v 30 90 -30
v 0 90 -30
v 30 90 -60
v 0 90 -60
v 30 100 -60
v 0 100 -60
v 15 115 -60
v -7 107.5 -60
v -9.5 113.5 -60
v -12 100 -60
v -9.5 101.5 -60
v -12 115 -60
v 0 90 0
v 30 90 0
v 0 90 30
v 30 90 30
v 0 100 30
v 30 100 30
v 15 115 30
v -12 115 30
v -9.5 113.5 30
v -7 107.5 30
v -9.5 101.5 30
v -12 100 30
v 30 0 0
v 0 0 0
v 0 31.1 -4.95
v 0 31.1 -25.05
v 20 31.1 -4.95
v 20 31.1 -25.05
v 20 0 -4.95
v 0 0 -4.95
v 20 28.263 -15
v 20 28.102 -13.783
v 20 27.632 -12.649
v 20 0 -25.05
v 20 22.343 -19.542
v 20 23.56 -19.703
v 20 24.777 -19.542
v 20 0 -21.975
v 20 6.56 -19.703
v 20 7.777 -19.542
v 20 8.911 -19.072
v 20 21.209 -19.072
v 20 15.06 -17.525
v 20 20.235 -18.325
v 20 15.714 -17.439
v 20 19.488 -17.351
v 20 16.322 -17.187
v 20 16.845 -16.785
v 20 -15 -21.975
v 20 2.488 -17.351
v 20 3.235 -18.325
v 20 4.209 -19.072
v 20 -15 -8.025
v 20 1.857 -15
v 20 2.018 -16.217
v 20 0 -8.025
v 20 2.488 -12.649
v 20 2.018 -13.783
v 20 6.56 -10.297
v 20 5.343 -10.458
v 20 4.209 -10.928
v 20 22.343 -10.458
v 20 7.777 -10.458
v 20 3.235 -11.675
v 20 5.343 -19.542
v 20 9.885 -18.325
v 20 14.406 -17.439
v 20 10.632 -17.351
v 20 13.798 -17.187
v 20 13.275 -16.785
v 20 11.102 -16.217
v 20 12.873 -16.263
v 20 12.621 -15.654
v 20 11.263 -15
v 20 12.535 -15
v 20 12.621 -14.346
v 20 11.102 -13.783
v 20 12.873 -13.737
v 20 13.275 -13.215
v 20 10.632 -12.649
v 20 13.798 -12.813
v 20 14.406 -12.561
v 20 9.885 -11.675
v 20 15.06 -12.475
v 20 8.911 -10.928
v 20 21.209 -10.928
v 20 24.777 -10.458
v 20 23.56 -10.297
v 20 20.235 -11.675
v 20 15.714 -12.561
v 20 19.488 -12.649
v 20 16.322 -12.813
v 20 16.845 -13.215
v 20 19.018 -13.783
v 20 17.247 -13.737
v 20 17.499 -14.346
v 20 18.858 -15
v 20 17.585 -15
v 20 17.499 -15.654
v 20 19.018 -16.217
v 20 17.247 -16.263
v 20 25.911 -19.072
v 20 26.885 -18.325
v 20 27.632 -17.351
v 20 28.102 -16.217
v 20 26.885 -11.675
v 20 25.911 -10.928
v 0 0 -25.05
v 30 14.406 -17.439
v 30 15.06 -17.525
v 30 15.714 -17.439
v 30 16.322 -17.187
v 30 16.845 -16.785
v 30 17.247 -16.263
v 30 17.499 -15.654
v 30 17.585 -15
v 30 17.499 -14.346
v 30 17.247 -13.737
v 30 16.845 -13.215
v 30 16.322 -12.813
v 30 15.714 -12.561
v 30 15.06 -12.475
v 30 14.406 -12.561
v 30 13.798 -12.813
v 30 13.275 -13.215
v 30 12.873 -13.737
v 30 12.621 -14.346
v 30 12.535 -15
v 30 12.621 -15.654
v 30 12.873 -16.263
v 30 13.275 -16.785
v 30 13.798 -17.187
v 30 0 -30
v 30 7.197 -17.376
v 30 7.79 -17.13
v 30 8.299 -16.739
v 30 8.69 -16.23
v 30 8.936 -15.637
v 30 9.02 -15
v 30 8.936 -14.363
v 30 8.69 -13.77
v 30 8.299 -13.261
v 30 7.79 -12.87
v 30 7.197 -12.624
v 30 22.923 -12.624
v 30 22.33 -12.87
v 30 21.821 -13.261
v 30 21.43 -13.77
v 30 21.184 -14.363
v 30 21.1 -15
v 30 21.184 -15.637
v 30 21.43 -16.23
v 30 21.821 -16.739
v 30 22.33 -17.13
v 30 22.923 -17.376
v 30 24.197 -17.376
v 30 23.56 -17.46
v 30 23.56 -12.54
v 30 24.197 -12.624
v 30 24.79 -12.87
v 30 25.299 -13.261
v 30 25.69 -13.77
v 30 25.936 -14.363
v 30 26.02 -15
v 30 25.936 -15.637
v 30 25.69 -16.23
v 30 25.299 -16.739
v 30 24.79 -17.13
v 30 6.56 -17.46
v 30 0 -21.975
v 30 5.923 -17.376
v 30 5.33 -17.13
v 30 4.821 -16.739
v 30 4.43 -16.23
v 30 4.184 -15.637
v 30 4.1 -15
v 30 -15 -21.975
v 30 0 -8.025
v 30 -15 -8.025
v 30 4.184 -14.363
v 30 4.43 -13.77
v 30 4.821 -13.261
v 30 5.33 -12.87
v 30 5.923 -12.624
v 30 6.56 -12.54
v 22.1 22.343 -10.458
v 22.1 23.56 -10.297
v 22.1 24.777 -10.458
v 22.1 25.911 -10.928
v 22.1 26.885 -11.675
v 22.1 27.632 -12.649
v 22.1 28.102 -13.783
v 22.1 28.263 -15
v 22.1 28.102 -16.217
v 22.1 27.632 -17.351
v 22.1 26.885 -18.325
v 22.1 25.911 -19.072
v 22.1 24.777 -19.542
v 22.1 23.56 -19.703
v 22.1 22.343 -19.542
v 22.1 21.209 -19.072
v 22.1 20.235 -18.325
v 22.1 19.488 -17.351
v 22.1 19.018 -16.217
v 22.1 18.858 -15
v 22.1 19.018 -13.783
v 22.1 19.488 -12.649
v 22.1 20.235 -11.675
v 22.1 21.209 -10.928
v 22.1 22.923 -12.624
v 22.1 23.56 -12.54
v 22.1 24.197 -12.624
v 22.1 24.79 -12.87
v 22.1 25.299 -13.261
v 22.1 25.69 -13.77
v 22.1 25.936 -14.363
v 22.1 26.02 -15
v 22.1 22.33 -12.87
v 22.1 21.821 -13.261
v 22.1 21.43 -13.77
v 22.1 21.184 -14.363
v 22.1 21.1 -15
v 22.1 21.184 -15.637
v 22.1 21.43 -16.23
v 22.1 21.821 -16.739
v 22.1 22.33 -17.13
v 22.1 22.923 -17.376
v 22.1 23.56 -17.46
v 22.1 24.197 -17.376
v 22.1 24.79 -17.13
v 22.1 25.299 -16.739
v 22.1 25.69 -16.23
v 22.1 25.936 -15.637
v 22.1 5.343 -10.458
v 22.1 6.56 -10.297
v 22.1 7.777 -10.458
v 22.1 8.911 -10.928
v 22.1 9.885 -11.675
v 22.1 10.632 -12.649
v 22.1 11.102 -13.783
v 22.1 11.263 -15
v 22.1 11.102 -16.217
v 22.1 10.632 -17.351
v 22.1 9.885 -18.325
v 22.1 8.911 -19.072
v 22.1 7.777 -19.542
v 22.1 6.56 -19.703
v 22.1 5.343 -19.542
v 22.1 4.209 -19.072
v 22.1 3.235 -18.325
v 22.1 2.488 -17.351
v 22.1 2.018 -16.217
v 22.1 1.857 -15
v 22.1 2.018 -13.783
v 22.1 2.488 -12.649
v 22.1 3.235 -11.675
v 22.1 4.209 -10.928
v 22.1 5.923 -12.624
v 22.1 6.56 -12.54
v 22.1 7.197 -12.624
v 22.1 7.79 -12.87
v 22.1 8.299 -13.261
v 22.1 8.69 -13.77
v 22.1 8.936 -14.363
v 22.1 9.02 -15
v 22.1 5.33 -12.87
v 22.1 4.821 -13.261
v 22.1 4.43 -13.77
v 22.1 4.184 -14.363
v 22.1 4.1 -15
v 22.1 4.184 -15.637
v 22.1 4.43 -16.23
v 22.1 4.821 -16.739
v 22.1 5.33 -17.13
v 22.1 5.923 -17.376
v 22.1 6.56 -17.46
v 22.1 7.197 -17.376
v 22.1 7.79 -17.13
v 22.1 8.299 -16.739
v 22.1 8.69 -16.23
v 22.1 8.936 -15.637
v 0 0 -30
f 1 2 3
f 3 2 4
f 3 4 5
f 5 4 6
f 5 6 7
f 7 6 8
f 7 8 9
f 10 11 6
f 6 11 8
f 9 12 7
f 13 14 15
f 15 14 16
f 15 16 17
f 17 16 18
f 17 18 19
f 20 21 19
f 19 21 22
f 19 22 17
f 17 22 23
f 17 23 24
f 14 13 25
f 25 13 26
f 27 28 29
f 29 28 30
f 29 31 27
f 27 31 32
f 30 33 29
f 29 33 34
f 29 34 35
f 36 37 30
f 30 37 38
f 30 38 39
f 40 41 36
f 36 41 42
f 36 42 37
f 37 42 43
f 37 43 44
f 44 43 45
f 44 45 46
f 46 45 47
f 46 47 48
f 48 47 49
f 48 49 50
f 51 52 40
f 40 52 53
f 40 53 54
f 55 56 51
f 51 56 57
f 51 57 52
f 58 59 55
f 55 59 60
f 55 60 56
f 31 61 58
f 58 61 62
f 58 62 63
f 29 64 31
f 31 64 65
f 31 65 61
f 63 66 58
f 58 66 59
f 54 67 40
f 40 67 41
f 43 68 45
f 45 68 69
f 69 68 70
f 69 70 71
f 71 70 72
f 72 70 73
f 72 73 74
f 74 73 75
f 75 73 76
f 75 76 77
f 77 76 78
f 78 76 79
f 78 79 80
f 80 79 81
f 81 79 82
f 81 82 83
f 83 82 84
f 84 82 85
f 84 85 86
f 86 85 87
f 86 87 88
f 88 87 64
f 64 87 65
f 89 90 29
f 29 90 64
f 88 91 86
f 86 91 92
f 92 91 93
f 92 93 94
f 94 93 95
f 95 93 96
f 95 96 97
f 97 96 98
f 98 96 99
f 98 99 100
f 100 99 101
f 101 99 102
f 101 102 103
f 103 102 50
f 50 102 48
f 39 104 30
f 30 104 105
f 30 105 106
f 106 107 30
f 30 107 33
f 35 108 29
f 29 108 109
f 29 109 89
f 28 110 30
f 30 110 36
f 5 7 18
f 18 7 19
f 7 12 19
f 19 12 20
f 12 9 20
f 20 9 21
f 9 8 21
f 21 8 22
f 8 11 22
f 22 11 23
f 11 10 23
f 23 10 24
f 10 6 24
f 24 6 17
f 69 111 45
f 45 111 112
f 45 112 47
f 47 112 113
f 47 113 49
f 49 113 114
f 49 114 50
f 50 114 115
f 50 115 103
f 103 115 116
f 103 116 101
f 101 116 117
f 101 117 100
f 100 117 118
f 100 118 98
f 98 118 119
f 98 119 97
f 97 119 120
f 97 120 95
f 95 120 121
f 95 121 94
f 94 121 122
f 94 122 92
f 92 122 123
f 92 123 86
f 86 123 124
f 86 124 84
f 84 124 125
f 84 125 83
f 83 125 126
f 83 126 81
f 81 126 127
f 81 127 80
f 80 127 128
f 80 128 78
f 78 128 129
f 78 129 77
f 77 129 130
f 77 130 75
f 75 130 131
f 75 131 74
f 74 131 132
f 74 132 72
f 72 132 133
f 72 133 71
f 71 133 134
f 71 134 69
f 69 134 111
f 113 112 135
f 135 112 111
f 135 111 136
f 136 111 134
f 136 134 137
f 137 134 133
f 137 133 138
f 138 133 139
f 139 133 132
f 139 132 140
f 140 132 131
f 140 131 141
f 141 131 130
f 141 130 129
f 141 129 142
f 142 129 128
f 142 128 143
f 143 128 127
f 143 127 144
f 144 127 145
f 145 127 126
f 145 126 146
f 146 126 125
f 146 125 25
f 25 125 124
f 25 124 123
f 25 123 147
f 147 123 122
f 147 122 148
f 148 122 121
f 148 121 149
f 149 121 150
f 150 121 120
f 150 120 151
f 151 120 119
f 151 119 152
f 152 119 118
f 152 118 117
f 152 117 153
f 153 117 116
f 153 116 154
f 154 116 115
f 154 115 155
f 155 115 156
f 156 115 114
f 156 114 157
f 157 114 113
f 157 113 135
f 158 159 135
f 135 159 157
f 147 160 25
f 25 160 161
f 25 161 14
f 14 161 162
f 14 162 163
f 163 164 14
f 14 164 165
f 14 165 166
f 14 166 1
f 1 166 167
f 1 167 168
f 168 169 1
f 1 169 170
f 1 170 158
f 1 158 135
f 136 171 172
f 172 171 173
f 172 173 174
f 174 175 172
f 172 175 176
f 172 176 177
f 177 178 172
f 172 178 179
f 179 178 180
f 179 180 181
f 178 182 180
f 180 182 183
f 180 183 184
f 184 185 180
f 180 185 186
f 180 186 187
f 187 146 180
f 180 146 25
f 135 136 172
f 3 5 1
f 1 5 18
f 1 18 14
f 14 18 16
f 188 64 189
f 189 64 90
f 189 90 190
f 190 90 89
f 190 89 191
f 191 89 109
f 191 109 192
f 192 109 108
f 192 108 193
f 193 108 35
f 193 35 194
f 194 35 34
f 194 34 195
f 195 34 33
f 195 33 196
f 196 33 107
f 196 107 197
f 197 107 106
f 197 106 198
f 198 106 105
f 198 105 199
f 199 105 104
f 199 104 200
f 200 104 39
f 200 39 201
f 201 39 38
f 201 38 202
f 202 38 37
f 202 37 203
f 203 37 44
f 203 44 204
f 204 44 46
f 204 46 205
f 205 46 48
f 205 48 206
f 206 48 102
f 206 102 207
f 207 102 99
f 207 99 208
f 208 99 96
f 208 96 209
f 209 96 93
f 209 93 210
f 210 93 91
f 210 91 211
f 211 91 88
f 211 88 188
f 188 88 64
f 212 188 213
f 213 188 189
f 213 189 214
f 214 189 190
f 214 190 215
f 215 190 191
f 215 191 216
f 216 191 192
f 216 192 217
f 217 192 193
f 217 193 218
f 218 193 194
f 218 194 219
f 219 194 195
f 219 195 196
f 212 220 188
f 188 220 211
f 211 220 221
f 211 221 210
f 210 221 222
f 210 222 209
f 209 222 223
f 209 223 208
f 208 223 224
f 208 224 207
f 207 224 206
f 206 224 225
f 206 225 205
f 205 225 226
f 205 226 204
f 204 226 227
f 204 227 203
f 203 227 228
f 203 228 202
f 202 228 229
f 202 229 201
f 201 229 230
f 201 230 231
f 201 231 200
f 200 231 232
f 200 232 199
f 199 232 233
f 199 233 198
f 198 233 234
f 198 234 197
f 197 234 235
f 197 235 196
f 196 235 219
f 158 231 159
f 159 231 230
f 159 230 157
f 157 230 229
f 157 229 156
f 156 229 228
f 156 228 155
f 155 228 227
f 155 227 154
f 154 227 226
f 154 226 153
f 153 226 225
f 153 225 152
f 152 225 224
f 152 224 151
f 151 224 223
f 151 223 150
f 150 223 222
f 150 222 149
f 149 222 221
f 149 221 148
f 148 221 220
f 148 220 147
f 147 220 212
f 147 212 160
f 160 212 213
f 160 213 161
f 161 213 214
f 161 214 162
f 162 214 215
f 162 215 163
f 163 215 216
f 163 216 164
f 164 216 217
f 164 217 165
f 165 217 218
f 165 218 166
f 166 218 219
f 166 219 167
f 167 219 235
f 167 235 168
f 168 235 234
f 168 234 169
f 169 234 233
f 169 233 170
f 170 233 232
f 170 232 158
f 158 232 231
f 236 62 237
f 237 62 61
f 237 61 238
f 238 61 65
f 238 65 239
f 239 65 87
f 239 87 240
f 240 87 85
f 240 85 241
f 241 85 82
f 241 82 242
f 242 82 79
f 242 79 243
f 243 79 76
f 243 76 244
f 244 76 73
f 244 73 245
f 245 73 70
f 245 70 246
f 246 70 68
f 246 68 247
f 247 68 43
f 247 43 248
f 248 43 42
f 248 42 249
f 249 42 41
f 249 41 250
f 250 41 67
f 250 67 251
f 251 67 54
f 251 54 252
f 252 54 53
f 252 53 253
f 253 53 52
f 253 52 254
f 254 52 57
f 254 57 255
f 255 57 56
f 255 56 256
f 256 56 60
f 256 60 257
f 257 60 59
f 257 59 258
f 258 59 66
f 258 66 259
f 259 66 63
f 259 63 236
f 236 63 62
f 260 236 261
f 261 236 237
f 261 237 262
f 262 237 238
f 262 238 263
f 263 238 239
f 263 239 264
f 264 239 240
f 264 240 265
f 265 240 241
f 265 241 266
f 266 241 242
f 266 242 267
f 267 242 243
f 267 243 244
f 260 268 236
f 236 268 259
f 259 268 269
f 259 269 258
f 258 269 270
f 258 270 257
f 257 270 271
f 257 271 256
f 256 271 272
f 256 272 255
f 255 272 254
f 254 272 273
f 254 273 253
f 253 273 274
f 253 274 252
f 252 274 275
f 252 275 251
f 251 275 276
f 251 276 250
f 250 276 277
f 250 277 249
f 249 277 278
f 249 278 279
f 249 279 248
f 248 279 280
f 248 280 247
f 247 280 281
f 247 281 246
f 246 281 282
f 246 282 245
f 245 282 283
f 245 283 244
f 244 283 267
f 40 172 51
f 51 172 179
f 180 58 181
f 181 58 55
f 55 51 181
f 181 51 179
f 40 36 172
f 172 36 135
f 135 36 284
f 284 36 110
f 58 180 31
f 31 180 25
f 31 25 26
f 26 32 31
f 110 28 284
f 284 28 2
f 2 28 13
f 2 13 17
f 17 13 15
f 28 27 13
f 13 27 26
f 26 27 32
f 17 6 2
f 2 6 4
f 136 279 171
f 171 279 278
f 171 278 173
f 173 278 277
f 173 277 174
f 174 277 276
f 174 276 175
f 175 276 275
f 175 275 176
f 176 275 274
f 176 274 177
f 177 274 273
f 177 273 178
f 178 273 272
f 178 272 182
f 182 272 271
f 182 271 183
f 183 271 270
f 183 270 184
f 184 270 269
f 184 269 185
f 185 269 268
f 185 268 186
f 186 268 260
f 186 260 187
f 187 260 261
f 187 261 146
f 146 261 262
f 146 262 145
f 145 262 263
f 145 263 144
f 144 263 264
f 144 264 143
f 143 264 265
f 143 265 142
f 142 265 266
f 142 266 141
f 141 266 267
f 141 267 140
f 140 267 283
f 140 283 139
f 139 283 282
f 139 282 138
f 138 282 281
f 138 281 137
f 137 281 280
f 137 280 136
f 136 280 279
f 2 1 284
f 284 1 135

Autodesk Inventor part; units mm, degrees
ref_plane "YZ Plane" through (0, 0, 0) normal (1, 0, 0) x (0, 1, 0)
ref_plane "XZ Plane" through (0, 0, 0) normal (0, 1, 0) x (-1, 0, 0)
sketch "Sketch1" plane through (0, 0, 0) normal (0, 0, 1) x (1, 0, 0)
  line L0 (0, 0) -> (25, 0)
  line L1 (25, 0) -> (25, 40)
  line L2 (25, 40) -> (0, 40)
  line L3 (0, 40) -> (0, 0)
  dimension "d1" = 25
  dimension "d2" = 40
  dimension "d3" = 25
extrude "Extrusion1" add sketch "Sketch1" against normal blind 30
sketch "Sketch2" plane through (25, 0, 0) normal (1, 0, 0) x (0, 0, -1)
  line L0 (0, 0) -> (30, 0) projected
  circle A0 centre (15, 6.56) radius 2.46
extrude "Extrusion2" cut sketch "Sketch2" against normal blind 30
sketch "Sketch3" plane through (0, 0, 0) normal (-1, 0, 0) x (0, 0, 1)
  line L0 (0, 0) -> (-30, 0) projected
  line L1 (-25.05, 0) -> (-4.95, 0)
  line L2 (-4.95, 0) -> (-4.95, 33.12)
  line L3 (-4.95, 33.12) -> (-25.05, 33.12)
  line L4 (-25.05, 33.12) -> (-25.05, 0)
  dimension "d11" = 20.1
extrude "Extrusion3" cut sketch "Sketch3" against normal blind 20
sketch "Sketch4" plane through (0, 0, 0) normal (0, -1, 0) x (1, 0, 0)
  line L0 (20, -4.95) -> (20, -25.05) projected
  line L1 (20, -15) -> (25, -15)
  line L2 (25, 0) -> (25, -30) projected
  line L3 (20, -8.025) -> (25, -8.025)
  line L4 (25, -8.025) -> (25, -21.975)
  line L5 (25, -21.975) -> (20, -21.975)
  line L6 (20, -21.975) -> (20, -8.025)
  line L7 (20, -8.025) -> (25, -21.975) construction
  line L8 (25, -8.025) -> (20, -21.975) construction
  line L9 (25, -12.54) -> (25, -17.46) projected
  point P0 (0, 0)
  point P1 (22.5, -15)
  dimension "d14" = 13.95
extrude "Extrusion4" add sketch "Sketch4" along normal blind 15
sketch "Sketch5" plane through (20, 0, 0) normal (-1, 0, 0) x (0, 0, 1)
  circle A0 centre (-15, 6.56) radius 2.46 projected
  circle A1 centre (-15, 6.56) radius 4.7025
  circle A2 centre (-15, 6.56) radius 2.46 projected
  circle A3 centre (-15, 6.56) radius 2.46
  point P0 (0, 0)
  dimension "d17" = 9.405
extrude "Extrusion5" cut sketch "Sketch5" against normal blind 2.1
sketch "Sketch6" plane through (25, 0, 0) normal (1, 0, 0) x (0, 0, -1)
  circle A0 centre (15, 6.56) radius 4.7025 projected
  line L0 (15, 6.56) -> (15, 23.56)
  circle A1 centre (15, 23.56) radius 2.46
  point P0 (0, 0)
  dimension "d20" = 17
  dimension "d21" = 4.92
extrude "Extrusion6" cut sketch "Sketch6" against normal blind 10 contours A1
sketch "Sketch7" plane through (20, 0, 0) normal (-1, 0, 0) x (0, 0, 1)
  circle A0 centre (-15, 23.56) radius 2.46 projected
  circle A1 centre (-15, 23.56) radius 4.7025
  point P0 (0, 0)
  dimension "d24" = 9.405
extrude "Extrusion7" cut sketch "Sketch7" against normal blind 2.1
sketch "Sketch9" plane through (25, 0, 0) normal (1, 0, 0) x (0, 0, -1)
  circle A0 centre (15, 6.56) radius 2.46 projected
  circle A1 centre (15, 6.56) radius 2.46
  circle A2 centre (15, 23.56) radius 2.46 projected
  circle A3 centre (15, 23.56) radius 2.46
  line L0 (30, 40) -> (30, 0) projected
  line L1 (30, 0) -> (30, 40)
  line L2 (30, 40) -> (0, 40)
  line L3 (0, 40) -> (0, 0)
  line L4 (0, 0) -> (8.025, 0) projected
  line L5 (21.975, 0) -> (21.975, -15)
  line L6 (21.975, -15) -> (8.025, -15)
  line L7 (8.025, -15) -> (8.025, 0)
  line L8 (0, 0) -> (8.025, 0)
  line L9 (21.975, 0) -> (30, 0)
extrude "Extrusion8" add sketch "Sketch9" along normal blind 5
sketch "Sketch10" plane through (0, 40, 0) normal (0, 1, 0) x (1, 0, 0)
  line L0 (0, 30) -> (30, 30) projected
  line L1 (30, 0) -> (0, 0) projected
  line L2 (0, 30) -> (30, 30)
  line L3 (30, 30) -> (30, 0)
  line L4 (30, 0) -> (0, 0)
  line L5 (0, 0) -> (0, 30)
extrude "Extrusion9" add sketch "Sketch10" along normal blind 30
sketch "Sketch12" plane through (30, 0, 0) normal (1, 0, 0) x (0, 0, -1)
  circle A0 centre (15, 6.56) radius 2.46 projected
  line L0 (15, 6.56) -> (15, 15.06)
  circle A1 centre (15, 15.06) radius 2.525
  point P0 (0, 0)
  dimension "d31" = 8.5
  dimension "d33" = 5.05
extrude "Extrusion10" cut sketch "Sketch12" against normal blind 30 contours A1
sketch "Sketch14" plane through (0, 0, 0) normal (0, 0, 1) x (1, 0, 0)
  line L0 (30, 70) -> (0, 70) projected
  line L1 (0, 70) -> (0, 85)
  line L2 (30, 100) -> (15, 115)
  line L3 (-12, 115) -> (15, 115)
  line L4 (30, 0) -> (30, 70) projected
  line L5 (30, 100) -> (30, 70)
  line L6 (-9.5, 113.5) -> (-12, 115)
  line L7 (-9.5, 101.5) -> (-12, 100)
  line L8 (-7, 107.5) -> (-9.5, 101.5)
  line L9 (-7, 107.5) -> (-9.5, 113.5)
  line L10 (0, 100) -> (0, 85)
  line L11 (0, 100) -> (-12, 100)
  point P0 (0, 0)
  dimension "d49" = 15
  dimension "d61" = 12
extrude "Extrusion12" add sketch "Sketch14" against normal blind 30
sketch "Sketch15" plane through (0, 0, -25.05) normal (-1, 0, 0) x (0, 0, 1)
  line L0 (0, 33.12) -> (20.1, 33.12) projected
  line L1 (20.1, 33.12) -> (20.1, 0) projected
  line L2 (0, 33.12) -> (20.1, 33.12)
  line L3 (20.1, 33.12) -> (20.1, 31.1)
  line L4 (20.1, 31.1) -> (0, 31.1)
  line L5 (0, 31.1) -> (0, 33.12)
  point P0 (25.05, 0)
  dimension "d57" = 2.02
extrude "Extrusion13" add sketch "Sketch15" against normal blind 20
sketch "Sketch19" plane through (0, 0, 0) normal (0, 0, 1) x (1, 0, 0)
  line L0 (0, 100) -> (0, 0) projected
  line L1 (0, 100) -> (-12, 100) projected
  line L2 (0, 100) -> (-12, 100)
  line L3 (-12, 100) -> (-9.5, 101.5) projected
  line L4 (-12, 100) -> (-9.5, 101.5)
  line L5 (-9.5, 101.5) -> (-7, 107.5) projected
  line L6 (-9.5, 101.5) -> (-7, 107.5)
  line L7 (-7, 107.5) -> (-9.5, 113.5) projected
  line L8 (-7, 107.5) -> (-9.5, 113.5)
  line L9 (-9.5, 113.5) -> (-12, 115) projected
  line L10 (-9.5, 113.5) -> (-12, 115)
  line L11 (-12, 115) -> (15, 115) projected
  line L12 (-12, 115) -> (15, 115)
  line L13 (15, 115) -> (30, 100) projected
  line L14 (15, 115) -> (30, 100)
  line L15 (30, 100) -> (30, 90)
  line L16 (30, 0) -> (30, 100) projected
  line L17 (30, 90) -> (0, 90)
  line L18 (0, 0) -> (0, 100) projected
  line L19 (0, 90) -> (0, 100)
  dimension "d62" = 10
  dimension "d63" = 30
extrude "Extrusion14" add sketch "Sketch19" along normal blind 30
ref_plane "Work Plane1" through (0, 0, -15) normal (0, 0, 1) x (1, 0, 0)
mirror "Mirror1" about plane through (0, 0, -15) normal (0, 0, 1) of "Extrusion14"
properties part number "rec_b_12mm_x_90mm"
